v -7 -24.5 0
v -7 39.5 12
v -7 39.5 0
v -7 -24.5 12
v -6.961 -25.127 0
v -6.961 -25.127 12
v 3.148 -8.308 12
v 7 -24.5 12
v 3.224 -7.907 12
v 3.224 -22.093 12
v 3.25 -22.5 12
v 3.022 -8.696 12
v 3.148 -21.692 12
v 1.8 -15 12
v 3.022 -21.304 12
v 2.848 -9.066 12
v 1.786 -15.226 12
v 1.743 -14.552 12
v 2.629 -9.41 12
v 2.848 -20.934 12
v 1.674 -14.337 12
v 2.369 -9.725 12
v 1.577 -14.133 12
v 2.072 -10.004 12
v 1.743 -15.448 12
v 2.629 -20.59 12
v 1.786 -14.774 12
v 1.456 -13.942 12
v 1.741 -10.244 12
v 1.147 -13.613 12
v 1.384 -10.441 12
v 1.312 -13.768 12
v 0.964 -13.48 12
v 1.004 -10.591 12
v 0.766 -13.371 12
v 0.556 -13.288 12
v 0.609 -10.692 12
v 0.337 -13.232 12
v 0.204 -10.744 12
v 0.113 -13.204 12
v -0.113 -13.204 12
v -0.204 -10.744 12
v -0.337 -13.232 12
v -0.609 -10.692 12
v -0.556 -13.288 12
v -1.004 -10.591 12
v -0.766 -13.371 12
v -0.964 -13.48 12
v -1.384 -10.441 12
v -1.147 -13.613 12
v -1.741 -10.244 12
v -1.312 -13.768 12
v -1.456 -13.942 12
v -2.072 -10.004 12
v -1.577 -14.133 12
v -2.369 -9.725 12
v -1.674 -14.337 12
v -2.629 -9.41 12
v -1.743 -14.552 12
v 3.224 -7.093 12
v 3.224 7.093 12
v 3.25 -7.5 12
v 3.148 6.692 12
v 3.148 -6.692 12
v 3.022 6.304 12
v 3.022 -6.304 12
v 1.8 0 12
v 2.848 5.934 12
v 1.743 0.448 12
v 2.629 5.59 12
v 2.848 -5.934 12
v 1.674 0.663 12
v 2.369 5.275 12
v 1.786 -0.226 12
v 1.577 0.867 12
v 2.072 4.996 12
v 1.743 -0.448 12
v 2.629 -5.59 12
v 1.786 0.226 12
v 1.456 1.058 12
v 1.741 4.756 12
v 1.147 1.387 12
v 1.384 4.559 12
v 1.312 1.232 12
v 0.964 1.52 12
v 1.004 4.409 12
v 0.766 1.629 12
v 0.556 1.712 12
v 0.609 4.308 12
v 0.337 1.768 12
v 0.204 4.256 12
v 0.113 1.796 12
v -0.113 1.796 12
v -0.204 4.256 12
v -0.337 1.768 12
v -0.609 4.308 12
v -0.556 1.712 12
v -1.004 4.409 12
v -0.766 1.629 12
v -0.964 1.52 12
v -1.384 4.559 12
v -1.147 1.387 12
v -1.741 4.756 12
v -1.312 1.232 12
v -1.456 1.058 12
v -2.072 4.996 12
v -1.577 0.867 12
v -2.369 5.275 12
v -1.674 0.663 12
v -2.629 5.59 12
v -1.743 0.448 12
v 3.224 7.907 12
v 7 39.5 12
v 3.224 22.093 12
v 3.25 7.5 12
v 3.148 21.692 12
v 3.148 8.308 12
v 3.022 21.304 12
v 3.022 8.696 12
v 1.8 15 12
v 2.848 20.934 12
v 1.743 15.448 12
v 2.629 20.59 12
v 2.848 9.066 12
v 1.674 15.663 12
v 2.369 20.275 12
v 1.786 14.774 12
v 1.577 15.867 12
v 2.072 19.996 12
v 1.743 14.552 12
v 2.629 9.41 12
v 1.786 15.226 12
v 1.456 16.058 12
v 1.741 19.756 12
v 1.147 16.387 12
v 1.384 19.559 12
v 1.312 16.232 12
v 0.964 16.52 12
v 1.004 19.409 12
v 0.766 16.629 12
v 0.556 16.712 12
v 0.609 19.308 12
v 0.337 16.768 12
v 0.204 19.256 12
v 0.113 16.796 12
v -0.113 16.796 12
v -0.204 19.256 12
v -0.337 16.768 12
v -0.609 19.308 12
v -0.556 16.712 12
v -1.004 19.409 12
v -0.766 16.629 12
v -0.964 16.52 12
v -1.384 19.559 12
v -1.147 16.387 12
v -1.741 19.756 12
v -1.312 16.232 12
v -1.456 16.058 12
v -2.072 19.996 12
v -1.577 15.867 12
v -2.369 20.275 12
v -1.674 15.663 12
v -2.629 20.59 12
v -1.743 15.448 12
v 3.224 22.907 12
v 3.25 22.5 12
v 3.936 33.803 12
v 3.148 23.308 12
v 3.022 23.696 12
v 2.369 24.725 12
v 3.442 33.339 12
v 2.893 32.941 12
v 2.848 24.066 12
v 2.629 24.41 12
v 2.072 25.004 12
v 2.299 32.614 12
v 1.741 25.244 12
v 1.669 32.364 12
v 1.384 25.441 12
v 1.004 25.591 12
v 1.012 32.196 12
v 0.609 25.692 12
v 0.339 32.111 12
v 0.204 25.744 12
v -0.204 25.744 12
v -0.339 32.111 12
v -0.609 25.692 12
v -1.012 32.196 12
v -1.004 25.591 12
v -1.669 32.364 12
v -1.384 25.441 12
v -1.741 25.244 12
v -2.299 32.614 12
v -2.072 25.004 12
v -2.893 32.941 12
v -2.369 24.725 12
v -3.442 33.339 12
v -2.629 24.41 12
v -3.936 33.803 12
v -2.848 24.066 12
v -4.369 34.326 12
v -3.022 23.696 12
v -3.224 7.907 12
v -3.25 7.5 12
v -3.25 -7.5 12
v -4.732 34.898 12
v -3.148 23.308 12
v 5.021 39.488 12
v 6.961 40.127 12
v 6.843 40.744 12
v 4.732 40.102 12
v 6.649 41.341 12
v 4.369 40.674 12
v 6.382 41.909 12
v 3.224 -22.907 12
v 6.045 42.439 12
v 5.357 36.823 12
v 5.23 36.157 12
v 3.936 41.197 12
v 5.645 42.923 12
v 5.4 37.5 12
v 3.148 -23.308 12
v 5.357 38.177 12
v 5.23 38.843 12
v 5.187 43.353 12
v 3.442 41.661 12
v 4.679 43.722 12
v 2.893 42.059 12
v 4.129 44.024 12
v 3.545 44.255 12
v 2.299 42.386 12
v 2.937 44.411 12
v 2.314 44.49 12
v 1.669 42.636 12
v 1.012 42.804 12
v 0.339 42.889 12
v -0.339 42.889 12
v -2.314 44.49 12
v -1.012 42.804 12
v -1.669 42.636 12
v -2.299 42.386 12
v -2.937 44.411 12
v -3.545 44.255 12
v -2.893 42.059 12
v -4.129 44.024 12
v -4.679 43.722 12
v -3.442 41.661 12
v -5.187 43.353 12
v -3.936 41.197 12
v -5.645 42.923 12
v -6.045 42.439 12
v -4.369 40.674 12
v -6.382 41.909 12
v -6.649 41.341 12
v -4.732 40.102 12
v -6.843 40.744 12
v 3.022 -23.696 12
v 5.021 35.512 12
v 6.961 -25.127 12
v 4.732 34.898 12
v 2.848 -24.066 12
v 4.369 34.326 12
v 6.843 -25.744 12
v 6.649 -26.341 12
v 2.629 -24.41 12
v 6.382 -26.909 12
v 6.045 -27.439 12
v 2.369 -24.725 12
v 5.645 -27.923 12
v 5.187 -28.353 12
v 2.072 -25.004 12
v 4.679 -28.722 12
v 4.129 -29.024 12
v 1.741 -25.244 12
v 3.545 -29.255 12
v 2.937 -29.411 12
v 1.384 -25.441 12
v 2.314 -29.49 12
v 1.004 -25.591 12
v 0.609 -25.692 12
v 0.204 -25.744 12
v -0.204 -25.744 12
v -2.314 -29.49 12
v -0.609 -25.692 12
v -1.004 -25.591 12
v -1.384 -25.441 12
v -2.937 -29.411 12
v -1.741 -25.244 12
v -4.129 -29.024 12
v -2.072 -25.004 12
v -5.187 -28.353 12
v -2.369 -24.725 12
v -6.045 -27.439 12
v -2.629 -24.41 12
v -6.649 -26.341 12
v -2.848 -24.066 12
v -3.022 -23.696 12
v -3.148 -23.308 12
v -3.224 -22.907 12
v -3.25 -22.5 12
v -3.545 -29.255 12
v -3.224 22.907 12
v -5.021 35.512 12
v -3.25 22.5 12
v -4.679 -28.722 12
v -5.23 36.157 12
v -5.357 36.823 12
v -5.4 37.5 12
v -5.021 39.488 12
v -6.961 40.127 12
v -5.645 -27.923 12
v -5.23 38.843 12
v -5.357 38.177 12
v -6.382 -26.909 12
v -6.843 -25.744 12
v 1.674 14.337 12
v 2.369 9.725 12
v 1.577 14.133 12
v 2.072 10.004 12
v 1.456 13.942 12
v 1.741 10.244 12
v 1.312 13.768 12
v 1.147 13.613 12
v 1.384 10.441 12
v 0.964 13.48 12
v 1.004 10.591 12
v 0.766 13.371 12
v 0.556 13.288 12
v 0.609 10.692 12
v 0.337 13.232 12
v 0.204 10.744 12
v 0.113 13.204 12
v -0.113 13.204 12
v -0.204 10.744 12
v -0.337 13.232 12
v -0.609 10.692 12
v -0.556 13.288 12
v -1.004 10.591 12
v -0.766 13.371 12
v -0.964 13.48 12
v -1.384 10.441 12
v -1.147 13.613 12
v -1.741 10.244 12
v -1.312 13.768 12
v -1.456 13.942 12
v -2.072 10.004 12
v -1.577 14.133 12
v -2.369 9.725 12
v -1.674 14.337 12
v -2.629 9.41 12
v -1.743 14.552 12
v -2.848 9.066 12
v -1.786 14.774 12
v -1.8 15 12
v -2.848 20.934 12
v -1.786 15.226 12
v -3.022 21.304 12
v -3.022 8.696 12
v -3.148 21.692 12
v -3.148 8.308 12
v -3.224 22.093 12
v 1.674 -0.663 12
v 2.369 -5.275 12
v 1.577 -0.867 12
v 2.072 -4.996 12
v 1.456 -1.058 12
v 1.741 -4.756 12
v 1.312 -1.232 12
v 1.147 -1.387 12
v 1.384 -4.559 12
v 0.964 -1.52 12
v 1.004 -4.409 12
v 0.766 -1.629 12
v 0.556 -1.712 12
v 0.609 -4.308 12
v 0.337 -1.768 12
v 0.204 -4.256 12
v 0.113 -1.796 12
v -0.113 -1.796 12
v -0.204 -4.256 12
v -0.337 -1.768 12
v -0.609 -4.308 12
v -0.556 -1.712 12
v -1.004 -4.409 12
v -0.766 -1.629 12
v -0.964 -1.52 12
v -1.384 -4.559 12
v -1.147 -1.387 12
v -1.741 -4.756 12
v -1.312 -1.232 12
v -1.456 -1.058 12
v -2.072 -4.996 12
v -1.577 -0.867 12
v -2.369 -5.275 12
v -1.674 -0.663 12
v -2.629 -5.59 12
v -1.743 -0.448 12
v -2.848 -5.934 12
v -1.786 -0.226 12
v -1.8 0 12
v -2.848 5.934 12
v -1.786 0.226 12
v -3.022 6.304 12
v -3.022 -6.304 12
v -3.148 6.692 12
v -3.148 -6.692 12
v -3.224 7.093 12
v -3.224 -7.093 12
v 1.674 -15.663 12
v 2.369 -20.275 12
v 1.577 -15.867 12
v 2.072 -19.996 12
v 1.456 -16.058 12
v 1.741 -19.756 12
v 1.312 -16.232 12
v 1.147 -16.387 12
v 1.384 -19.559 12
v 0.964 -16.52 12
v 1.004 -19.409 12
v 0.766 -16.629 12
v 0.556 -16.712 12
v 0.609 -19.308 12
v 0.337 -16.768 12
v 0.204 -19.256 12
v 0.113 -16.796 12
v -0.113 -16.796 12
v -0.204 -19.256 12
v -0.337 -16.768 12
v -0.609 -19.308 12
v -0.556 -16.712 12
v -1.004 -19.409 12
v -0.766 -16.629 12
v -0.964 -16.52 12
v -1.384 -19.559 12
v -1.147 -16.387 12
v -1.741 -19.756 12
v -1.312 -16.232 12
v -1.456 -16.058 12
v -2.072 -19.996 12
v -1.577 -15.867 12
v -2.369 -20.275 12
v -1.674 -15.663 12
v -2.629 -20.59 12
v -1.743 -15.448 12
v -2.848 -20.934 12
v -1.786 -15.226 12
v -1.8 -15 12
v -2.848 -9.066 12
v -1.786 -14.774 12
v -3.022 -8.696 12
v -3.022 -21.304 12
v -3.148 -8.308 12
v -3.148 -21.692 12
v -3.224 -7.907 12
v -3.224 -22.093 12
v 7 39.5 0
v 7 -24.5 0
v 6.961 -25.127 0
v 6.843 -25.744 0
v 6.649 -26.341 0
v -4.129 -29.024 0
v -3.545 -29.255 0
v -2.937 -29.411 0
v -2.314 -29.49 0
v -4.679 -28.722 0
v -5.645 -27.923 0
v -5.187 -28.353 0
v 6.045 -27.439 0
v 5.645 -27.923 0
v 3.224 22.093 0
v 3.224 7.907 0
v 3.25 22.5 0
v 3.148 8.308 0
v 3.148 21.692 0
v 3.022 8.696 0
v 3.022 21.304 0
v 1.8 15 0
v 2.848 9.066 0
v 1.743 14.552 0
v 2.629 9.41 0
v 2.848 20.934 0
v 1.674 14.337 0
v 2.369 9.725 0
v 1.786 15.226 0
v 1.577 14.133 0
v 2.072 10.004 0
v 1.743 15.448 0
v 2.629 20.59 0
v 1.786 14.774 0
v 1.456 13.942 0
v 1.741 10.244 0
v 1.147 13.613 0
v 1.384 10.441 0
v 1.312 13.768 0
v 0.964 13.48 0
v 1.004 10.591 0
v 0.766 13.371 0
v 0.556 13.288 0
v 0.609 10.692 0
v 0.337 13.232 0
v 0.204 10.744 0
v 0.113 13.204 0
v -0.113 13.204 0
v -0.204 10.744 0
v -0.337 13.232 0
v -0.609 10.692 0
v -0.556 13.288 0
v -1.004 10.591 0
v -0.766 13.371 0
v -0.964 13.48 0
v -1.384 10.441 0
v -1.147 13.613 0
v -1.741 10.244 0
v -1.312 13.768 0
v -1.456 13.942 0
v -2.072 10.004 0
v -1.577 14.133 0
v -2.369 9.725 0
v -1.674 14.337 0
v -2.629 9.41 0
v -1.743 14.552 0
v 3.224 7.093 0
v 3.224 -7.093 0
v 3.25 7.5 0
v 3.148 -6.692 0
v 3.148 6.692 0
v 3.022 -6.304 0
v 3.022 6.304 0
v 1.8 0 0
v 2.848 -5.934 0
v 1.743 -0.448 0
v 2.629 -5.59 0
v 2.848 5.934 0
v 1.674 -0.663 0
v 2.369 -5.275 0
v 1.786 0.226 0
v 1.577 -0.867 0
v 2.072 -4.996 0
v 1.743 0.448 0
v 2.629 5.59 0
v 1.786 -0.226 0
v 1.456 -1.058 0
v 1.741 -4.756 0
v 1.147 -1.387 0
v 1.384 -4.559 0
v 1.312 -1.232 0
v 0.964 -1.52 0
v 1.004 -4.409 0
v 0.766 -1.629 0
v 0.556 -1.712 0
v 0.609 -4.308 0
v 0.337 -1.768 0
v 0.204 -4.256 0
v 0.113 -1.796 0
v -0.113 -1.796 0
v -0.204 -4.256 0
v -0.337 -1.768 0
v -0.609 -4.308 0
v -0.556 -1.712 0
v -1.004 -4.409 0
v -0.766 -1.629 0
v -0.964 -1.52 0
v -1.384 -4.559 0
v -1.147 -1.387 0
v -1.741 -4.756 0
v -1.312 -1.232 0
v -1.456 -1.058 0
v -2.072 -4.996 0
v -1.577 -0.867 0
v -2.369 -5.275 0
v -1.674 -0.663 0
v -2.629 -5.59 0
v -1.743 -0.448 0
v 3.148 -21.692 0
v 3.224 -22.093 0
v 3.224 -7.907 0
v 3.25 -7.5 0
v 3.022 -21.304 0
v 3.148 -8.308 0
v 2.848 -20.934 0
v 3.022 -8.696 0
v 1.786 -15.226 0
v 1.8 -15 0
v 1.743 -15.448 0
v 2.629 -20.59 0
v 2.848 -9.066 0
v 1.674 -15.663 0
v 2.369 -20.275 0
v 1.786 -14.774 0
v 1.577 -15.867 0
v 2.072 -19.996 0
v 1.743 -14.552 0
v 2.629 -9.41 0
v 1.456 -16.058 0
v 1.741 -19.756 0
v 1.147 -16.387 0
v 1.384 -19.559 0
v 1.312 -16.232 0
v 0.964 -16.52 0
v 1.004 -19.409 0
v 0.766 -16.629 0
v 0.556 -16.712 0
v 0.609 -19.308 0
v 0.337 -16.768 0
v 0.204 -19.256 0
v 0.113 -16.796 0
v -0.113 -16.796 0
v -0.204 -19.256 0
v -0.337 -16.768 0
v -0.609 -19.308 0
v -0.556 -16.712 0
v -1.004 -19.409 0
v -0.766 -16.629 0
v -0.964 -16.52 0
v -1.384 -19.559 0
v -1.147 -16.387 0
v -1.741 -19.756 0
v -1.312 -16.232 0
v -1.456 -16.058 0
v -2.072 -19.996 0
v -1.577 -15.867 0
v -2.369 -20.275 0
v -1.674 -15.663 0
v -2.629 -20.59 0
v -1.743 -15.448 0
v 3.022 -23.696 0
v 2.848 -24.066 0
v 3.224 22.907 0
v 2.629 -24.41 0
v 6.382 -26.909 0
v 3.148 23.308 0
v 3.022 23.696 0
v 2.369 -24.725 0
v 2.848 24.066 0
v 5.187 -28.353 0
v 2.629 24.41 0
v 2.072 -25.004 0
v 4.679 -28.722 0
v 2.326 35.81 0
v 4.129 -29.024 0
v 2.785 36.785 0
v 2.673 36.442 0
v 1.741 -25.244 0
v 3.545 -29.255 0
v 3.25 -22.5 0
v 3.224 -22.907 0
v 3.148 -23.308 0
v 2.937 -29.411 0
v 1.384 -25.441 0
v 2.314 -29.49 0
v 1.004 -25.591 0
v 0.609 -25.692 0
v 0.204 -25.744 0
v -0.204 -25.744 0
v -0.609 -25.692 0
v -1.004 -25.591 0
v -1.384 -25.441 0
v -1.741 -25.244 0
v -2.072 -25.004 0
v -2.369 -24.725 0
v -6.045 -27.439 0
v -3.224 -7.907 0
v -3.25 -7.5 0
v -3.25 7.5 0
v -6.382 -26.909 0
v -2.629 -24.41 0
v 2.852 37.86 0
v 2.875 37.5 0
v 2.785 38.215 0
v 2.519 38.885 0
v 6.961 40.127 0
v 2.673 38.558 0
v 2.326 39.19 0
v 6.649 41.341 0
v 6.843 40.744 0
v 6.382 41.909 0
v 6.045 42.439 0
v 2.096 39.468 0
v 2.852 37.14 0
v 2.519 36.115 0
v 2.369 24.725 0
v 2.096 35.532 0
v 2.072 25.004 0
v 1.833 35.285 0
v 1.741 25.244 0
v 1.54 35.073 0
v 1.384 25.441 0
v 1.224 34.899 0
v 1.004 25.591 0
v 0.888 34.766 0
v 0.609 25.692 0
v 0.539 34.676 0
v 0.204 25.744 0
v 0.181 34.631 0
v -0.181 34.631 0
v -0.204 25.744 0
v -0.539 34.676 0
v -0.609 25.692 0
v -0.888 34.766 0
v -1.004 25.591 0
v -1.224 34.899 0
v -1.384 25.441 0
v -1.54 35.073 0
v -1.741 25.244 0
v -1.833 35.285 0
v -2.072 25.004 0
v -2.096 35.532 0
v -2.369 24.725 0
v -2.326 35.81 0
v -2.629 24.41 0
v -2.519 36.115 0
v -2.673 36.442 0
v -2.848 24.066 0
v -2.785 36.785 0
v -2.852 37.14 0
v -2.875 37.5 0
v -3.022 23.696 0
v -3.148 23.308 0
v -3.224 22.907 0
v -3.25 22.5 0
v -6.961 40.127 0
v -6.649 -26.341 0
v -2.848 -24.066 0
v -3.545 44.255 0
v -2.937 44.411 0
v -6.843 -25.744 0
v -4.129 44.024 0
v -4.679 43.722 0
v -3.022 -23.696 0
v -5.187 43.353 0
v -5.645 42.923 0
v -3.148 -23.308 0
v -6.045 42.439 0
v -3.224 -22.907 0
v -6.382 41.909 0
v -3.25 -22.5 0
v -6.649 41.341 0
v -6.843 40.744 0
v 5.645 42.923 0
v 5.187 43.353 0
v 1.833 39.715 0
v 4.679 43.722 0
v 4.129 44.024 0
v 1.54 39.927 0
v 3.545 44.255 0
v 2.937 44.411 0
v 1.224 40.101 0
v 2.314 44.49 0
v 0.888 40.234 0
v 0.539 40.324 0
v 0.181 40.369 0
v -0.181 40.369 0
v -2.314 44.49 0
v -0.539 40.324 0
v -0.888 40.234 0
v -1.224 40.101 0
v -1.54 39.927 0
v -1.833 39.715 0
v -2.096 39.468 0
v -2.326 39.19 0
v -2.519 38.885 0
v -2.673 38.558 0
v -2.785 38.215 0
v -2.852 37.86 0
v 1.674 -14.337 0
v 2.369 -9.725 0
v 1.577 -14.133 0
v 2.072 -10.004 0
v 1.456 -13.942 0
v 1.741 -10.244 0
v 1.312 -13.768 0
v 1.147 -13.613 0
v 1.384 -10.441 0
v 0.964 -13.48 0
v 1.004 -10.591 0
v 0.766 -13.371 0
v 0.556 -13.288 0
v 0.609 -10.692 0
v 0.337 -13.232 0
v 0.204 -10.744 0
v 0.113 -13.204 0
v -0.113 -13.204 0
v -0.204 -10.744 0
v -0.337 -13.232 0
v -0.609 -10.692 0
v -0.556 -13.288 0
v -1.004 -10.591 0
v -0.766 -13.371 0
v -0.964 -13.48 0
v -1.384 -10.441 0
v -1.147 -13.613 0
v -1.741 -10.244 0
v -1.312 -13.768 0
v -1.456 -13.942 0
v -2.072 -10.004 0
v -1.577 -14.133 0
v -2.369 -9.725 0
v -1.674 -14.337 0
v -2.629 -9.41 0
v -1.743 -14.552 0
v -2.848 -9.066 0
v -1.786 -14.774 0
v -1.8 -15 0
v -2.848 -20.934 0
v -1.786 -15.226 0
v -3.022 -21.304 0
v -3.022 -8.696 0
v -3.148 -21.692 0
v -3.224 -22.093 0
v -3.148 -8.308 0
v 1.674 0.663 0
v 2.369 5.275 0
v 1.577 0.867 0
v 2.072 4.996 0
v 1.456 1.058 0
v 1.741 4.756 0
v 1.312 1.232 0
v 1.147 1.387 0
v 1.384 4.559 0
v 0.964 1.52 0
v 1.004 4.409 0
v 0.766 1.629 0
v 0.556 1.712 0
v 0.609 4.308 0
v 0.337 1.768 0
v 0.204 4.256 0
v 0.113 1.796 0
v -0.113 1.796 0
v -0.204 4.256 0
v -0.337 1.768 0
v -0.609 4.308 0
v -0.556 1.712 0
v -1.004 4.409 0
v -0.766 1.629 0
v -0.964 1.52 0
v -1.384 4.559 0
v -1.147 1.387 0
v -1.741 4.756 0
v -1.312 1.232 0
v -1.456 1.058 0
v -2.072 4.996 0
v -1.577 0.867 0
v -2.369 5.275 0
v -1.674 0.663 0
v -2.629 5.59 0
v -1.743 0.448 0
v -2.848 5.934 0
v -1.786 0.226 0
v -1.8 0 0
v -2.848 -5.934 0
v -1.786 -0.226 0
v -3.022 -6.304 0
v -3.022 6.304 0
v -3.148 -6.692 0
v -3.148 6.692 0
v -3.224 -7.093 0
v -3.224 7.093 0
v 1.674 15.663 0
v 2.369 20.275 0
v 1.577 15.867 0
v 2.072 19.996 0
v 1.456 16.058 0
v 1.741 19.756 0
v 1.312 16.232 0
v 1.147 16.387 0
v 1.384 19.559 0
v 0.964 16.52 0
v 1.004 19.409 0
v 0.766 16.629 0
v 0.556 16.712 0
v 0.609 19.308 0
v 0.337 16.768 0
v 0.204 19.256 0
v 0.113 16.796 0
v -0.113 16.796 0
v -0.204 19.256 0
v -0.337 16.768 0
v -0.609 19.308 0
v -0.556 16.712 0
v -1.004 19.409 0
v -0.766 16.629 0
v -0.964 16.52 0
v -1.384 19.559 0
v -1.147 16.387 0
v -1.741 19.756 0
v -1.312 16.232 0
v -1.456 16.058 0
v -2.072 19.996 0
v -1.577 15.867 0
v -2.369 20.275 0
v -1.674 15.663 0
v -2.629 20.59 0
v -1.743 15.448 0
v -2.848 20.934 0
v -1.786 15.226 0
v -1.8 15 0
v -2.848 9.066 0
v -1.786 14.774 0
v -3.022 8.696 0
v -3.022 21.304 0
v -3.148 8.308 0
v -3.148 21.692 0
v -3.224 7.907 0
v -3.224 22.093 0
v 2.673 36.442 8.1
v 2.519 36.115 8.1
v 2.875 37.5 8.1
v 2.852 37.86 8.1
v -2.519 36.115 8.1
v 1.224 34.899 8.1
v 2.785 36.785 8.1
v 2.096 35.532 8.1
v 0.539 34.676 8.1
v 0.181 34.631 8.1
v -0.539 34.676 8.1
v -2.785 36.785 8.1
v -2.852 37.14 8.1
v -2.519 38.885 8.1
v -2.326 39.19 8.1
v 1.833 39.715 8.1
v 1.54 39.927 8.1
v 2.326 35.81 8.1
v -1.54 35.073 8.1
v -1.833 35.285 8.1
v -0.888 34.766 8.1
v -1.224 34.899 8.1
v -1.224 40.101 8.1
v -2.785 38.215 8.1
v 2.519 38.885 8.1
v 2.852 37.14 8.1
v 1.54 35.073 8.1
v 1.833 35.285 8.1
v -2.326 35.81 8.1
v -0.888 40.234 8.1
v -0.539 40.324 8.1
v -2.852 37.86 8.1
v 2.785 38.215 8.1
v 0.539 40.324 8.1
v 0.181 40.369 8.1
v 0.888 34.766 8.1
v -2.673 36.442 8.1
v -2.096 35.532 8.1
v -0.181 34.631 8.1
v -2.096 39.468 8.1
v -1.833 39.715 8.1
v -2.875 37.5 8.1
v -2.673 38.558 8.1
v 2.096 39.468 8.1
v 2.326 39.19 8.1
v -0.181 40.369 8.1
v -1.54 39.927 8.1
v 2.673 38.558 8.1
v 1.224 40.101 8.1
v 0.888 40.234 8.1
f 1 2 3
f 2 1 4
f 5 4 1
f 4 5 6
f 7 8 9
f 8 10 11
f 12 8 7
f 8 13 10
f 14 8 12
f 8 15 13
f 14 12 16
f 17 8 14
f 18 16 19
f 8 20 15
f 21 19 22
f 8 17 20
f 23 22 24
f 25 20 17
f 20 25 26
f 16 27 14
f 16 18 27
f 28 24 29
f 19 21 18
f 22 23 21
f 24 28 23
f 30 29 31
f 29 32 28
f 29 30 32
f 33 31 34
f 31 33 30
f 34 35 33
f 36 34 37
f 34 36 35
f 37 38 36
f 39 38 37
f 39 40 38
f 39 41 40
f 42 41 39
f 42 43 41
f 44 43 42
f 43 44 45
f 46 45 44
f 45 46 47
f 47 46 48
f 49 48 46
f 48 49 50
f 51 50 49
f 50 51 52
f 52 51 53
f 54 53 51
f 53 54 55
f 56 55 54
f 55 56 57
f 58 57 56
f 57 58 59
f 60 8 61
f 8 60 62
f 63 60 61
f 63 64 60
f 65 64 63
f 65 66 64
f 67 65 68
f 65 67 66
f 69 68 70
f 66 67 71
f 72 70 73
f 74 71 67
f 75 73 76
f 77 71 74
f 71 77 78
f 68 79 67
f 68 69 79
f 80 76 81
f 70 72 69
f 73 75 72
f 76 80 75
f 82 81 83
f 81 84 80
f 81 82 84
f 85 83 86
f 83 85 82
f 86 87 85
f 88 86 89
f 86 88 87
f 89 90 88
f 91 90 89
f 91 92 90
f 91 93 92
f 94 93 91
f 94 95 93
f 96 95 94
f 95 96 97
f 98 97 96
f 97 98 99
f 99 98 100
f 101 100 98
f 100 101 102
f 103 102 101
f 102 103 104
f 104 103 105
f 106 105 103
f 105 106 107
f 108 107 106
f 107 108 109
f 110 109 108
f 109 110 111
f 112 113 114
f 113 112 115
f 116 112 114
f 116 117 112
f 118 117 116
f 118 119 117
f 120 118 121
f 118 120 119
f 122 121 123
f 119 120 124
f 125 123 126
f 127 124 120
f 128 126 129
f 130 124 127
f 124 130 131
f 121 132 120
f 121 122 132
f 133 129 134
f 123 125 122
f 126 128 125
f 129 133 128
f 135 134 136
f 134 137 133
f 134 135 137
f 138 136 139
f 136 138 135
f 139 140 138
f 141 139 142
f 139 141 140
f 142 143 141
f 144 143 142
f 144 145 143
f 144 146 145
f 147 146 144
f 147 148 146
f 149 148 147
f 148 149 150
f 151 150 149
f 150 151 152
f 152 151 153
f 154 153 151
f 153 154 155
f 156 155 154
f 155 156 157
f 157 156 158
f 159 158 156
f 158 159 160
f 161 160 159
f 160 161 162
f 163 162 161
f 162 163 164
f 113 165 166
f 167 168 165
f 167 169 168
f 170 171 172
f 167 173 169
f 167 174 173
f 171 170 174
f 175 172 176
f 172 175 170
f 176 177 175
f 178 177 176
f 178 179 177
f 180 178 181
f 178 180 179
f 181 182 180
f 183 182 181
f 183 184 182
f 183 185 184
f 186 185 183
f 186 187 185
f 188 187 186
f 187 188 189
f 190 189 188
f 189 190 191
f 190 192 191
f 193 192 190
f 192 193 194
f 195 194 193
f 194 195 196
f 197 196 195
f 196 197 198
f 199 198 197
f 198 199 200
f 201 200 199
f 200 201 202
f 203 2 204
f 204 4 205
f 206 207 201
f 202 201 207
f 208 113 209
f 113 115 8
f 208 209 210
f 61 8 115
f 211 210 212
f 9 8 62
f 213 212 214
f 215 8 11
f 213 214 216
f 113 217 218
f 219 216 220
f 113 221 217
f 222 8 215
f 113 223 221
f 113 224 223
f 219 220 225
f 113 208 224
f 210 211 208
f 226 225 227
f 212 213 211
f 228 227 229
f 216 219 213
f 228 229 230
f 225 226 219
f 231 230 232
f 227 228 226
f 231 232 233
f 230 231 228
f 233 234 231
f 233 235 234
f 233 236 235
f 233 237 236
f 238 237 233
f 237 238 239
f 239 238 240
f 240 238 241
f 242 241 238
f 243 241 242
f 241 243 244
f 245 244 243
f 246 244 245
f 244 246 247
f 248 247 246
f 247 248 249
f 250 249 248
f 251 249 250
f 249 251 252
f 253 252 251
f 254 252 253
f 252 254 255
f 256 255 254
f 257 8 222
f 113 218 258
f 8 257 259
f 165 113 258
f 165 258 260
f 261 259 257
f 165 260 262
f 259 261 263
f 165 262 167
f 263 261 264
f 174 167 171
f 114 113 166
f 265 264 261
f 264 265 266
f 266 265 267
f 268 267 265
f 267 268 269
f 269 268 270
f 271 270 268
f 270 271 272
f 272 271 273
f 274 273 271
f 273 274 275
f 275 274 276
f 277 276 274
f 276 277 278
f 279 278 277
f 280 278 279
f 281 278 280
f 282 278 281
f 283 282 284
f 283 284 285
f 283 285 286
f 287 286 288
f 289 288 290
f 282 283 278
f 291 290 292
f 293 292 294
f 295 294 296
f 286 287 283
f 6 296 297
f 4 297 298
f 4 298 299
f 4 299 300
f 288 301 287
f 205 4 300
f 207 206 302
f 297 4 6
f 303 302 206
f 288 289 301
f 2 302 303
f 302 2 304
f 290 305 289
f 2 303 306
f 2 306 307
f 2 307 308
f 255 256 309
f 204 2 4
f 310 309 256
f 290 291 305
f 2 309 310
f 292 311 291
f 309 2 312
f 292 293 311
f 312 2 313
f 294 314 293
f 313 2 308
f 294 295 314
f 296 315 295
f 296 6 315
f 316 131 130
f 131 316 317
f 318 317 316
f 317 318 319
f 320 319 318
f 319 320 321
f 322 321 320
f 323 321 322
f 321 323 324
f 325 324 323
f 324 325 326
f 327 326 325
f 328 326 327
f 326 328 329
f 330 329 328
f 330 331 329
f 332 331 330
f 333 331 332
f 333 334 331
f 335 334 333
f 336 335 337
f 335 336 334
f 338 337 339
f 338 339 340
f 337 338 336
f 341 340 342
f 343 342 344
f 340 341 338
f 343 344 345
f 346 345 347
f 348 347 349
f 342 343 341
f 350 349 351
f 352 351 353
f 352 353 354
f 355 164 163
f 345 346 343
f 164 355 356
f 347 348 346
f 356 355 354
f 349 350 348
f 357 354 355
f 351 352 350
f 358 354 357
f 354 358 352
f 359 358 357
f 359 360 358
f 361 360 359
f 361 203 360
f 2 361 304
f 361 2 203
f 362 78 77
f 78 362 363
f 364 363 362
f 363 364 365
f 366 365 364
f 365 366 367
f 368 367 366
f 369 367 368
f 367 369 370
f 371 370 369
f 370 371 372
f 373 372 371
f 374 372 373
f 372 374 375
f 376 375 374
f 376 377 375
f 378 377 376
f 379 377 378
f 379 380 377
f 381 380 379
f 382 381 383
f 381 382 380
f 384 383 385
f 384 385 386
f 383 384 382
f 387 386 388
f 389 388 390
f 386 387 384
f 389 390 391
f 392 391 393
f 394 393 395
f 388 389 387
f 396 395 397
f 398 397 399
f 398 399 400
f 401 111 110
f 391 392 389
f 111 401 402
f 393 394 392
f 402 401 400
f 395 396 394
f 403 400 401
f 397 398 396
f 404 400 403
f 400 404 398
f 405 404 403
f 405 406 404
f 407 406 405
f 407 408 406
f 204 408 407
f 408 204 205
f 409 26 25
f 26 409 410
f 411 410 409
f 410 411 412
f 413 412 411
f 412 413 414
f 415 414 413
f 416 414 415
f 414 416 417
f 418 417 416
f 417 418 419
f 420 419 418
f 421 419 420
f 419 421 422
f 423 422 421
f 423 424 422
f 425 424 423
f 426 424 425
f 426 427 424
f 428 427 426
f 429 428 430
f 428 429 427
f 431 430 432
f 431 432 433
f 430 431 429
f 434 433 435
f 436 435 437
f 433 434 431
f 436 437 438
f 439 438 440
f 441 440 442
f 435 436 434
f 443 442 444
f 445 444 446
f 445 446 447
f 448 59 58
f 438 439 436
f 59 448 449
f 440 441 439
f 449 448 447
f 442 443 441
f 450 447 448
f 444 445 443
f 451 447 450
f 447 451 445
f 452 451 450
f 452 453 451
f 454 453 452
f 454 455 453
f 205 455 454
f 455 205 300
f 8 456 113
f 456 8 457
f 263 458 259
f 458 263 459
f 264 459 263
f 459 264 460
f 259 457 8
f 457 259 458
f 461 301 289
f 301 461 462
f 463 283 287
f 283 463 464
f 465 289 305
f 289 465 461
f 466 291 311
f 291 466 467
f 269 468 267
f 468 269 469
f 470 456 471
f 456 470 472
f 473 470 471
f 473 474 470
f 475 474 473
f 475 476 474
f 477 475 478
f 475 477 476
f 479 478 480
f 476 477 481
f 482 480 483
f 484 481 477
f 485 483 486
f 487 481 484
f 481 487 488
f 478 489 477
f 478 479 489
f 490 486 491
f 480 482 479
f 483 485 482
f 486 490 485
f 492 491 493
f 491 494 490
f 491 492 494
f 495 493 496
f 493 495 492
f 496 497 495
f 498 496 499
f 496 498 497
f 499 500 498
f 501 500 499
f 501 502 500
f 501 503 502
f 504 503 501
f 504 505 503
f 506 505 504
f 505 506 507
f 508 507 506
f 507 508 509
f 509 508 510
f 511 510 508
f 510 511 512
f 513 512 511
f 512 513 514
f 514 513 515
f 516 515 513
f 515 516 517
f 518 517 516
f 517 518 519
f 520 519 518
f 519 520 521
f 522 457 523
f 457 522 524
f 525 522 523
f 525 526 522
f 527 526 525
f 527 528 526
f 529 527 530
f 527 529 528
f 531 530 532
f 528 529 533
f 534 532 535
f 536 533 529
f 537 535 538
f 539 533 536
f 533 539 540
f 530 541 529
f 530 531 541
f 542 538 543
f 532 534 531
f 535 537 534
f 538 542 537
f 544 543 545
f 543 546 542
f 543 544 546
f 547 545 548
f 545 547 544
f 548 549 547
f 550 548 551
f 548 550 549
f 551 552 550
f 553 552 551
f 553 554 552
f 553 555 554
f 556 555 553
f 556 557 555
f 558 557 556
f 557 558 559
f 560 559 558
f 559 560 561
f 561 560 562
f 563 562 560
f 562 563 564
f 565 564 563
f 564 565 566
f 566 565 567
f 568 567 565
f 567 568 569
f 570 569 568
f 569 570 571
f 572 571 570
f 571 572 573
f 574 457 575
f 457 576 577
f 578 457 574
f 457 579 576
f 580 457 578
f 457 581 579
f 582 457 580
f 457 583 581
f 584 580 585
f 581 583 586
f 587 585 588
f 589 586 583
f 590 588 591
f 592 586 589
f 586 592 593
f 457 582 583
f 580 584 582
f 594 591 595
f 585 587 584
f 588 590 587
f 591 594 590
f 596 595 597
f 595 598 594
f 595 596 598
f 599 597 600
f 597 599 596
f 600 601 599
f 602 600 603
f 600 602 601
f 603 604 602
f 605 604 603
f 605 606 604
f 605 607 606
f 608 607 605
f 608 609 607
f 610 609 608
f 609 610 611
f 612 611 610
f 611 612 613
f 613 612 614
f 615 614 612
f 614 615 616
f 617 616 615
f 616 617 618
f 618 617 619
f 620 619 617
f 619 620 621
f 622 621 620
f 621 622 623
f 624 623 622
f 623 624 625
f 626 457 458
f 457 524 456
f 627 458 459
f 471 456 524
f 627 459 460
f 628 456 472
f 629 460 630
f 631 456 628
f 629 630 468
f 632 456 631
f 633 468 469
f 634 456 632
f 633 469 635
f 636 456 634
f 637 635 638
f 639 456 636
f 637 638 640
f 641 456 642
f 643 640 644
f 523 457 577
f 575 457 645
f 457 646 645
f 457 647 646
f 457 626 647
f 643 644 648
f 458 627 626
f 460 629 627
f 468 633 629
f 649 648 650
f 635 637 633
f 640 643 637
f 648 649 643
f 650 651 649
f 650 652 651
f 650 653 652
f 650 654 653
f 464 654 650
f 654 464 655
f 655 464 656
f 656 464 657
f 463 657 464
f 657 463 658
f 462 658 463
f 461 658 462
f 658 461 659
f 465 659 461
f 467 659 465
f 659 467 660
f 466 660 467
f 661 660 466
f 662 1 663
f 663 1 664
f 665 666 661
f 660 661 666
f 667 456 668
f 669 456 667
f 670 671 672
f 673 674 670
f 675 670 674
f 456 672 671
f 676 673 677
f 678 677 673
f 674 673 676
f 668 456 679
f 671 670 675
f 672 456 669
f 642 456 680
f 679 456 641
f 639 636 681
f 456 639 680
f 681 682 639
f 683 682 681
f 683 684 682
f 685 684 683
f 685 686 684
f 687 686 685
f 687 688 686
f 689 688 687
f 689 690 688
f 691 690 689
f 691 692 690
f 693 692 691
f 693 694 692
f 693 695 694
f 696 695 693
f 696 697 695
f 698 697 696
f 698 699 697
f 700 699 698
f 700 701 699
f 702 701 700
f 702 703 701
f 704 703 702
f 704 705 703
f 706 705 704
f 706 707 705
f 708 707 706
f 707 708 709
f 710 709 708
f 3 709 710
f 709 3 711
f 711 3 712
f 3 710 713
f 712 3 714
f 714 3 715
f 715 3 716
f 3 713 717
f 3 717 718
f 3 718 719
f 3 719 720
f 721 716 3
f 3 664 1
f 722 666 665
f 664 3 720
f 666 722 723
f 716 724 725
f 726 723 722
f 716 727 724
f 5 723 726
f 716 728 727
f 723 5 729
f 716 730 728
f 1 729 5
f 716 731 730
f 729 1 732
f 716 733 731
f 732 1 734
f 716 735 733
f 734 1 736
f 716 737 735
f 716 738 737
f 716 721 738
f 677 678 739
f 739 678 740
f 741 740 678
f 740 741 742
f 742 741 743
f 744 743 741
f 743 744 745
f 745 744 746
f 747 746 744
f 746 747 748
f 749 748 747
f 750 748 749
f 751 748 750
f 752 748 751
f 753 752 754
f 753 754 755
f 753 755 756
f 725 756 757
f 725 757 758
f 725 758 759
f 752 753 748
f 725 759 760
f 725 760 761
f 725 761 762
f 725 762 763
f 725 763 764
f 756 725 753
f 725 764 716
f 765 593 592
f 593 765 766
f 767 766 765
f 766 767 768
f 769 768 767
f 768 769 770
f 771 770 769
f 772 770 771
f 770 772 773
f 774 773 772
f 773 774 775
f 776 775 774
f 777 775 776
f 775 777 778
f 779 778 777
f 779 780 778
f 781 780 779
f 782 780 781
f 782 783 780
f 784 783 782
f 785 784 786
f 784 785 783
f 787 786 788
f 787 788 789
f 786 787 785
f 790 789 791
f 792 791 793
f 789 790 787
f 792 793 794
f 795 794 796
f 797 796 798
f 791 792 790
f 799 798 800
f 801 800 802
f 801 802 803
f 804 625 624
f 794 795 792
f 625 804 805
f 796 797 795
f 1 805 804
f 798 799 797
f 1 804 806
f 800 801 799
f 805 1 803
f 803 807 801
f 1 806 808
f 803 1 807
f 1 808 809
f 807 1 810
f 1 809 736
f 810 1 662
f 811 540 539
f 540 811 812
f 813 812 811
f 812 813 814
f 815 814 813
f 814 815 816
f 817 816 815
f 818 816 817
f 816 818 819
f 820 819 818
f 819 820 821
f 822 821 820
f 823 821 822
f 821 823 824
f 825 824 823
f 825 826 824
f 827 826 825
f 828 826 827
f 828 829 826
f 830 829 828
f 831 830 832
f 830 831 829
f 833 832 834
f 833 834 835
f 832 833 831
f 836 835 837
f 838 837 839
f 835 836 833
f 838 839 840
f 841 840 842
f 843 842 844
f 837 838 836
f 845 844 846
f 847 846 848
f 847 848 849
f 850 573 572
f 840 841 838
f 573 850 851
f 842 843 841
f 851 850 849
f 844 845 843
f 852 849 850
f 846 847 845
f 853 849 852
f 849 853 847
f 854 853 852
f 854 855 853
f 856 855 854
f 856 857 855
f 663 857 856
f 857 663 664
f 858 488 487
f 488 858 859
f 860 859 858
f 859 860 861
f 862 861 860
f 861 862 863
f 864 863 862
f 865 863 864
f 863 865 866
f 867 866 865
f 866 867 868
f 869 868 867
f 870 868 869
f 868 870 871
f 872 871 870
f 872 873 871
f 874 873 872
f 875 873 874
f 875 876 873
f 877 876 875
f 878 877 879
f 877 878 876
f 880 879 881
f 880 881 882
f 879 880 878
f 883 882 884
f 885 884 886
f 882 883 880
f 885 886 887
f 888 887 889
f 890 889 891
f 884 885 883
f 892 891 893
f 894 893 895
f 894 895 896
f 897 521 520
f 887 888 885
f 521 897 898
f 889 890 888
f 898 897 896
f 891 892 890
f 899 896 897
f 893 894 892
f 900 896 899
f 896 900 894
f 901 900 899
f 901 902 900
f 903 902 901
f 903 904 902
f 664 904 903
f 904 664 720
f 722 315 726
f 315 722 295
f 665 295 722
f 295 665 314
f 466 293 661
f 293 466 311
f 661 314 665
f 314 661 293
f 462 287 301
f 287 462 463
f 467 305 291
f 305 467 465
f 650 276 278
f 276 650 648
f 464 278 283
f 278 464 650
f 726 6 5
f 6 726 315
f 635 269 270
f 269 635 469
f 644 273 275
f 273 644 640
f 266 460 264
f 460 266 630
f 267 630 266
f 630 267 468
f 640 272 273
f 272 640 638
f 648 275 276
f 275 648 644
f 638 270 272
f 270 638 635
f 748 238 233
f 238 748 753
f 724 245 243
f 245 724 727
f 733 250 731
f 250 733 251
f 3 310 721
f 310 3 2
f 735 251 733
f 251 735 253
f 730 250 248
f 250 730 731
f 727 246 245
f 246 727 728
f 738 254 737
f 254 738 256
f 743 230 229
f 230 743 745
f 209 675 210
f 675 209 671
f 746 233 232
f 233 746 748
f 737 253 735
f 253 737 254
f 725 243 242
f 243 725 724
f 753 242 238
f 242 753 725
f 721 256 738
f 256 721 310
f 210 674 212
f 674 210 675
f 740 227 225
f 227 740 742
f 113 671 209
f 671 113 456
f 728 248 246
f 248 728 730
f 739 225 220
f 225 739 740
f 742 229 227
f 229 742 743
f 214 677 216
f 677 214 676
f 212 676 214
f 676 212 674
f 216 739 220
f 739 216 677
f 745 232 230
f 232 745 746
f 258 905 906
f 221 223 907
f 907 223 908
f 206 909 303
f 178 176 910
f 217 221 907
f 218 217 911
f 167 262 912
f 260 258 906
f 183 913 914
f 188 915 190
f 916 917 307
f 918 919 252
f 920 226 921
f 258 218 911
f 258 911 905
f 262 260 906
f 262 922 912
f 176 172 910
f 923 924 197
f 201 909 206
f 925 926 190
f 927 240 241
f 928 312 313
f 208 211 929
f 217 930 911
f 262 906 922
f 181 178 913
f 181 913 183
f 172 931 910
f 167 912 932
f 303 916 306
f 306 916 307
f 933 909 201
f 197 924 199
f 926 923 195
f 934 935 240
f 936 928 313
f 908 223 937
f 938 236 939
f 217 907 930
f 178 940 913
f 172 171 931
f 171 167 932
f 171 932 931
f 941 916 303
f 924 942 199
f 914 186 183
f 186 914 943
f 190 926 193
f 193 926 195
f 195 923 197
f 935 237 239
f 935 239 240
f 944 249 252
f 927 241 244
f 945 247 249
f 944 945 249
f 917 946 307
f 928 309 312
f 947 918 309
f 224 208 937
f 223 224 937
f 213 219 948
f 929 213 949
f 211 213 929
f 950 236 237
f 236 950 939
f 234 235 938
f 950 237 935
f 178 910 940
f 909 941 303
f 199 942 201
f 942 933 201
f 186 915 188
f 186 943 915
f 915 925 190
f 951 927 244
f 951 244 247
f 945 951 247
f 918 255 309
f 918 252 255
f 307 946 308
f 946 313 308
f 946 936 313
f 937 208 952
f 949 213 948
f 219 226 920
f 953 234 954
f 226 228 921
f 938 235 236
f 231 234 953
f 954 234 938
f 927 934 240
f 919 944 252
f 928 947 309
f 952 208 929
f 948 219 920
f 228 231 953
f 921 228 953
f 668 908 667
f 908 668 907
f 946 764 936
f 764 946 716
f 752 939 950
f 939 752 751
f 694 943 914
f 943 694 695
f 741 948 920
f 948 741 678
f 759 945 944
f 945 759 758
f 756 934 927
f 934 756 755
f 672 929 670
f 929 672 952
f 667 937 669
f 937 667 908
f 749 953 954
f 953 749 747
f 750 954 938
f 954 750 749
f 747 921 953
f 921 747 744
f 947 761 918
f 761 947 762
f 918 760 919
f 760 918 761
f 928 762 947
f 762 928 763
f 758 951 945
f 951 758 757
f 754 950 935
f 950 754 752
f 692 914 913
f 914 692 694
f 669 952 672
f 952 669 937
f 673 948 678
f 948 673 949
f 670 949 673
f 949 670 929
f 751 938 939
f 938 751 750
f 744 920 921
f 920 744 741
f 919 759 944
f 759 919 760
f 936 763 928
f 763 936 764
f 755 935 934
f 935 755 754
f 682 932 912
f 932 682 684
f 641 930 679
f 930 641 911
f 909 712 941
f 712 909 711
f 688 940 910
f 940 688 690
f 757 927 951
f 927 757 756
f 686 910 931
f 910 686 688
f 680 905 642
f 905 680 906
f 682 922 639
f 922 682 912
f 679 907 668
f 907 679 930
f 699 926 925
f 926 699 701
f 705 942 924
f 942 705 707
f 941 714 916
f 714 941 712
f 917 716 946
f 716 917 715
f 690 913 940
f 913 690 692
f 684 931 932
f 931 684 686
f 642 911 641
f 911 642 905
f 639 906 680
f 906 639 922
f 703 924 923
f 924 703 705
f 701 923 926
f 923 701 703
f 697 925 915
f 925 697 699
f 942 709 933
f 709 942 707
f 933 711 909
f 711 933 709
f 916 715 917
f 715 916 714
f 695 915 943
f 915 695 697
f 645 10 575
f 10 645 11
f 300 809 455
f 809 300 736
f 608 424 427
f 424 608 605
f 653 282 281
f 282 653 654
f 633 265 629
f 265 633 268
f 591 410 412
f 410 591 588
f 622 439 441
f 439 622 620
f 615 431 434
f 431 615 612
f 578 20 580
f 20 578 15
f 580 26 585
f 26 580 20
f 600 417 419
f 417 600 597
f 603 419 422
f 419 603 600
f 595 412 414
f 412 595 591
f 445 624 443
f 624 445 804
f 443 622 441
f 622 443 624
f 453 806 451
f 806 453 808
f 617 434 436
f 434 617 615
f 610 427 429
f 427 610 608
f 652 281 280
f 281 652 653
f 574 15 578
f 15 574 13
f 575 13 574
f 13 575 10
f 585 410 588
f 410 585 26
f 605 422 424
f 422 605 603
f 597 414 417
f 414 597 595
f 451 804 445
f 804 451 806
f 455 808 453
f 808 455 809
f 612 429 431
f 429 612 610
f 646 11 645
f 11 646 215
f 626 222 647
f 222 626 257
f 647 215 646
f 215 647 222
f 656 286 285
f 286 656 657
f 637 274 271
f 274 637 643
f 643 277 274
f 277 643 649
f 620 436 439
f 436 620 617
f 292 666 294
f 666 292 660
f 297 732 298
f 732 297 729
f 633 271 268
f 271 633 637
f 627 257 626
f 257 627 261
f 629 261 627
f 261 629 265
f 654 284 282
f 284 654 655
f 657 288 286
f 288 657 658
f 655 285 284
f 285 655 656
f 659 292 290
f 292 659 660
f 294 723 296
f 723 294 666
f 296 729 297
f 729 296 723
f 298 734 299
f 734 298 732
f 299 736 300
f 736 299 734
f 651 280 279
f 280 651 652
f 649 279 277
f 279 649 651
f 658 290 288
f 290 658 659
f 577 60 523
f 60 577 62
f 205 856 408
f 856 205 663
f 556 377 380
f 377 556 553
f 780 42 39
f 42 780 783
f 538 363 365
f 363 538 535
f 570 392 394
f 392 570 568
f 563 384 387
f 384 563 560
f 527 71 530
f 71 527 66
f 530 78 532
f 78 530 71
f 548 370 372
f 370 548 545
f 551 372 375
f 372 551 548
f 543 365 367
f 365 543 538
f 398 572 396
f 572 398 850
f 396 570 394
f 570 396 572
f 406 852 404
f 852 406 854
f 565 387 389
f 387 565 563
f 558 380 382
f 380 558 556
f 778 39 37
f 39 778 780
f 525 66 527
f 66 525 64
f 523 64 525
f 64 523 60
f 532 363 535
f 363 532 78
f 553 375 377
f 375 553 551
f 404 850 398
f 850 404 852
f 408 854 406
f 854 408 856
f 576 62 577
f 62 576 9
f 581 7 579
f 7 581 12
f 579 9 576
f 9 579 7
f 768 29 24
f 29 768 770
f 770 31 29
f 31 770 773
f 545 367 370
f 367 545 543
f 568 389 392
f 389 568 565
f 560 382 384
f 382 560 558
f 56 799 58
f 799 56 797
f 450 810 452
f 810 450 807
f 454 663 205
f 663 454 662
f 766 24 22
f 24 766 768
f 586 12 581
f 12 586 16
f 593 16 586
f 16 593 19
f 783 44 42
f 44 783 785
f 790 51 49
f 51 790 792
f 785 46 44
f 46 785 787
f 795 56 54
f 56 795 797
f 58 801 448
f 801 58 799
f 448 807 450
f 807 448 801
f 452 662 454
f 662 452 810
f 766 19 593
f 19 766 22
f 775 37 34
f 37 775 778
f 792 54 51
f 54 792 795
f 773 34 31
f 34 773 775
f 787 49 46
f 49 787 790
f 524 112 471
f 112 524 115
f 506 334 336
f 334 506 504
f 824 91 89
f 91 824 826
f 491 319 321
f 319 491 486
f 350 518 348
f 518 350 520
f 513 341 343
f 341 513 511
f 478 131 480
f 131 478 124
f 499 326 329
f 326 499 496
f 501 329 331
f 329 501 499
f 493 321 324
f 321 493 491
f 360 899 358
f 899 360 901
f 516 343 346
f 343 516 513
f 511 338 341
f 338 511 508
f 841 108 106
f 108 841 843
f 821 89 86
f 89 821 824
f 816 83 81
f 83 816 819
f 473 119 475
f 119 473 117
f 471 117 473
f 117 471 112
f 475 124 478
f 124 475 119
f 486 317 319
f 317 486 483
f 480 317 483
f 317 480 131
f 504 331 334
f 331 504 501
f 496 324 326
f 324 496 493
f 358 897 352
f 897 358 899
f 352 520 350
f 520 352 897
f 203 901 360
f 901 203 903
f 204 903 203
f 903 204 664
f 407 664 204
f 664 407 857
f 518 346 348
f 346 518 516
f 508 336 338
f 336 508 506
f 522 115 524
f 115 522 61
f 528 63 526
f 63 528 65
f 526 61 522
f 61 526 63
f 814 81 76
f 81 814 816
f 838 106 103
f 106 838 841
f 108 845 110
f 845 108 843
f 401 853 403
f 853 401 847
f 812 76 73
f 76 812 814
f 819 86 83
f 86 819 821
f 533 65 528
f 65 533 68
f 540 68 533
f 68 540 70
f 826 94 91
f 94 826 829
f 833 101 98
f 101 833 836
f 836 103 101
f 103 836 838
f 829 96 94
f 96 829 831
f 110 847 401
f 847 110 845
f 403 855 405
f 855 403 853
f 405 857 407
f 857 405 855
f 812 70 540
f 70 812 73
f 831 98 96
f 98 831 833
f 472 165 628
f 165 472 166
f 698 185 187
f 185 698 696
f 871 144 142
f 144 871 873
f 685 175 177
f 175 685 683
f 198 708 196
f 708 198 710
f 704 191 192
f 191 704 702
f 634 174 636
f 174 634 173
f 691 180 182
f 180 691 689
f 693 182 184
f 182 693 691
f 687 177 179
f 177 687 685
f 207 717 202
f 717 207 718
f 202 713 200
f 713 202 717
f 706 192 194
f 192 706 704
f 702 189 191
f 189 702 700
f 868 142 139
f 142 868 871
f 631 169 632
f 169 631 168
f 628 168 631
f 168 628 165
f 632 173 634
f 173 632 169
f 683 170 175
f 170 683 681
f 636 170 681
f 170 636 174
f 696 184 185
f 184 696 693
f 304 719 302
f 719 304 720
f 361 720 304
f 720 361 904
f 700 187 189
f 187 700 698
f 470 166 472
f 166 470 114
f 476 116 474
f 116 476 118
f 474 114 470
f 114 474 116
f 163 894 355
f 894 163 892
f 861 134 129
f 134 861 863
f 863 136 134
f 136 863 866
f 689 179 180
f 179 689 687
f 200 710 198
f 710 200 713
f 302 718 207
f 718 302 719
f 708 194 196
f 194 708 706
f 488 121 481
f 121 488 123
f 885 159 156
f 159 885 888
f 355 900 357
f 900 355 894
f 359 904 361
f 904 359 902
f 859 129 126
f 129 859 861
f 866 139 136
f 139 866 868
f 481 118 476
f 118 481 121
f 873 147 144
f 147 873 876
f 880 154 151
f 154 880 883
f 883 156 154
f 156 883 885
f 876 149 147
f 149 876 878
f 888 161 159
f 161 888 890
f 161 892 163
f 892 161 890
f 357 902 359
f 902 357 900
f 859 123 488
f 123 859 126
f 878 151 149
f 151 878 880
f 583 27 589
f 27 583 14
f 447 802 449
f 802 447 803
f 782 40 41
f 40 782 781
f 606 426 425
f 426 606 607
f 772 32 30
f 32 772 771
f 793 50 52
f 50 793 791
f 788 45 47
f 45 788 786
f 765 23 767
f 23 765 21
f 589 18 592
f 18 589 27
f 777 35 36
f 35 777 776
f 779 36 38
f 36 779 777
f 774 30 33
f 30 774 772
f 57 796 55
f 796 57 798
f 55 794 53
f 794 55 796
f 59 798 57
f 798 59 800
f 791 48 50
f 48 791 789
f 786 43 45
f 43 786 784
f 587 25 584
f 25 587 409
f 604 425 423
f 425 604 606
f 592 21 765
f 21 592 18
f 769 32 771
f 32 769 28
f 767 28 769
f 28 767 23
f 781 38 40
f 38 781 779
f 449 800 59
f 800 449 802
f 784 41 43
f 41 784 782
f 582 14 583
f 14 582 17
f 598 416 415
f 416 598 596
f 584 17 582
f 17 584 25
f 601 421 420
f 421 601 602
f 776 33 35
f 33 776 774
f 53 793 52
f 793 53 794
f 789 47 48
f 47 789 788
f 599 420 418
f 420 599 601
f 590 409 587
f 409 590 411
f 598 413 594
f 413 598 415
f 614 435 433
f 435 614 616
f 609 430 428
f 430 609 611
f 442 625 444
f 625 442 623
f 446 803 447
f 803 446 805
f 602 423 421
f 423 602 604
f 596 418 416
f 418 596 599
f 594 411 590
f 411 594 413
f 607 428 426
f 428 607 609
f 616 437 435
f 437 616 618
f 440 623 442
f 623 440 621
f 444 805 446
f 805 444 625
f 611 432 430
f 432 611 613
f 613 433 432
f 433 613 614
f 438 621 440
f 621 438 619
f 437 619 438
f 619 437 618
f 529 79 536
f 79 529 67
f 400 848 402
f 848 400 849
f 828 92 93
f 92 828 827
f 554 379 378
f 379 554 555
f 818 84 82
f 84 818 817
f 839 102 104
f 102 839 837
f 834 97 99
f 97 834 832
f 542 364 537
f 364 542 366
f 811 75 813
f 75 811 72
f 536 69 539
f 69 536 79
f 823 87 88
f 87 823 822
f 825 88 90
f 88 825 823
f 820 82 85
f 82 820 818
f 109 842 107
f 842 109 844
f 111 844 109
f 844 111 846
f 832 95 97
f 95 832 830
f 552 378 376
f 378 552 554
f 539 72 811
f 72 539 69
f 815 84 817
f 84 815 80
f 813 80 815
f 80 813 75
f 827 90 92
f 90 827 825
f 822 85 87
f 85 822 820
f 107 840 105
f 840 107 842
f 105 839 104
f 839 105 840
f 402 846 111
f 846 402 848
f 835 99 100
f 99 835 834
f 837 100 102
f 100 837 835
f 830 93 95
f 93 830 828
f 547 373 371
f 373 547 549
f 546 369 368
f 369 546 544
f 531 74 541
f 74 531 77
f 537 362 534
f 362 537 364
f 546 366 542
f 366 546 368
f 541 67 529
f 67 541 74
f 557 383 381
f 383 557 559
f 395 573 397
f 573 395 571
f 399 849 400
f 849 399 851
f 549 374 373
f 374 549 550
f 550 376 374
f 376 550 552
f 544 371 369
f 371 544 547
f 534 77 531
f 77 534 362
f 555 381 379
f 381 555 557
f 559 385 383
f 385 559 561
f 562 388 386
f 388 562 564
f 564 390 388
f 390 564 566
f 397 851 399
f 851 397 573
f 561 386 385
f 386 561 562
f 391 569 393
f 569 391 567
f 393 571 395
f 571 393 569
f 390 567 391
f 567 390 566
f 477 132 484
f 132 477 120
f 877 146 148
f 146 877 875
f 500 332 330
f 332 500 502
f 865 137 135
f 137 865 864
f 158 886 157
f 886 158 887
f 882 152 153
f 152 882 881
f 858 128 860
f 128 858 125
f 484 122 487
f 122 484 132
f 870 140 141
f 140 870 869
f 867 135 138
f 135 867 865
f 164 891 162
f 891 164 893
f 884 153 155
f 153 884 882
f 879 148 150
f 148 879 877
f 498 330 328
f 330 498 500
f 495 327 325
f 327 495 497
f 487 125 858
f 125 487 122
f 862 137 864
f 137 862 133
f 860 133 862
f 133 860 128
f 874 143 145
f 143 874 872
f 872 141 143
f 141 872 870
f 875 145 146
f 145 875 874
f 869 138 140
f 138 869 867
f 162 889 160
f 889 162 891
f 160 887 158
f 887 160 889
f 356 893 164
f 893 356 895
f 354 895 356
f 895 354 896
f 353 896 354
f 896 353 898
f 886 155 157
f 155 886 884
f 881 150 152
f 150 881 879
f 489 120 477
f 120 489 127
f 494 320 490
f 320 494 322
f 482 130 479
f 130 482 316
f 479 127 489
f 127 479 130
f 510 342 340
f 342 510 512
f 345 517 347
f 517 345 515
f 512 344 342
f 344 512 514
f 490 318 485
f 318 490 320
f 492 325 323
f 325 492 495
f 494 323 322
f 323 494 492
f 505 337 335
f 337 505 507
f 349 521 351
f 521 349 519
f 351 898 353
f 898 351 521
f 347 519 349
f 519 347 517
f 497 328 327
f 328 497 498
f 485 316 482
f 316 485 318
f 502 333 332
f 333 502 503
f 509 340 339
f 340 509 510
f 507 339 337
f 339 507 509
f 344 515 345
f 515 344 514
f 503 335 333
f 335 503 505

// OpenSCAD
$fn = 50;


difference() {
	union() {
		hull() {
			translate(v = [-2.0000000000, 24.5000000000, 0]) {
				cylinder(h = 12, r = 5);
			}
			translate(v = [2.0000000000, 24.5000000000, 0]) {
				cylinder(h = 12, r = 5);
			}
			translate(v = [-2.0000000000, -24.5000000000, 0]) {
				cylinder(h = 12, r = 5);
			}
			translate(v = [2.0000000000, -24.5000000000, 0]) {
				cylinder(h = 12, r = 5);
			}
		}
		translate(v = [0.0000000000, 30.0000000000, 0]) {
			hull() {
				translate(v = [-2.0000000000, 9.5000000000, 0]) {
					cylinder(h = 12, r = 5);
				}
				translate(v = [2.0000000000, 9.5000000000, 0]) {
					cylinder(h = 12, r = 5);
				}
				translate(v = [-2.0000000000, -9.5000000000, 0]) {
					cylinder(h = 12, r = 5);
				}
				translate(v = [2.0000000000, -9.5000000000, 0]) {
					cylinder(h = 12, r = 5);
				}
			}
		}
		translate(v = [0.0000000000, 30.0000000000, 0]) {
			hull() {
				translate(v = [-2.0000000000, 9.5000000000, 0]) {
					cylinder(h = 12, r = 5);
				}
				translate(v = [2.0000000000, 9.5000000000, 0]) {
					cylinder(h = 12, r = 5);
				}
				translate(v = [-2.0000000000, -9.5000000000, 0]) {
					cylinder(h = 12, r = 5);
				}
				translate(v = [2.0000000000, -9.5000000000, 0]) {
					cylinder(h = 12, r = 5);
				}
			}
		}
	}
	union() {
		translate(v = [0.0000000000, 37.5000000000, 12]) {
			rotate(a = [0, 0, 0]) {
				difference() {
					union() {
						#translate(v = [0, 0, -12.0000000000]) {
							cylinder(h = 12, r = 2.6000000000);
						}
						#translate(v = [0, 0, -3.9000000000]) {
							cylinder(h = 3.9000000000, r1 = 2.8750000000, r2 = 5.4000000000);
						}
						#translate(v = [0, 0, -12.0000000000]) {
							cylinder(h = 12, r = 2.8750000000);
						}
						#translate(v = [0, 0, -12.0000000000]) {
							cylinder(h = 12, r = 2.6000000000);
						}
					}
					union();
				}
			}
		}
		translate(v = [0.0000000000, 37.5000000000, 12]) {
			rotate(a = [0, 0, 0]) {
				difference() {
					union() {
						#translate(v = [0, 0, -12.0000000000]) {
							cylinder(h = 12, r = 2.6000000000);
						}
						#translate(v = [0, 0, -3.9000000000]) {
							cylinder(h = 3.9000000000, r1 = 2.8750000000, r2 = 5.4000000000);
						}
						#translate(v = [0, 0, -12.0000000000]) {
							cylinder(h = 12, r = 2.8750000000);
						}
						#translate(v = [0, 0, -12.0000000000]) {
							cylinder(h = 12, r = 2.6000000000);
						}
					}
					union();
				}
			}
		}
		translate(v = [0.0000000000, -22.5000000000, 0]) {
			translate(v = [0, 0, -100]) {
				cylinder(h = 200, r = 3.2500000000);
			}
		}
		translate(v = [0.0000000000, -7.5000000000, 0]) {
			translate(v = [0, 0, -100]) {
				cylinder(h = 200, r = 3.2500000000);
			}
		}
		translate(v = [0.0000000000, 7.5000000000, 0]) {
			translate(v = [0, 0, -100]) {
				cylinder(h = 200, r = 3.2500000000);
			}
		}
		translate(v = [0.0000000000, 22.5000000000, 0]) {
			translate(v = [0, 0, -100]) {
				cylinder(h = 200, r = 3.2500000000);
			}
		}
		translate(v = [0.0000000000, -22.5000000000, 0]) {
			translate(v = [0, 0, -100]) {
				cylinder(h = 200, r = 1.8000000000);
			}
		}
		translate(v = [0.0000000000, -15.0000000000, 0]) {
			translate(v = [0, 0, -100]) {
				cylinder(h = 200, r = 1.8000000000);
			}
		}
		translate(v = [0.0000000000, -7.5000000000, 0]) {
			translate(v = [0, 0, -100]) {
				cylinder(h = 200, r = 1.8000000000);
			}
		}
		translate(v = [0, 0, -100]) {
			cylinder(h = 200, r = 1.8000000000);
		}
		translate(v = [0.0000000000, 7.5000000000, 0]) {
			translate(v = [0, 0, -100]) {
				cylinder(h = 200, r = 1.8000000000);
			}
		}
		translate(v = [0.0000000000, 15.0000000000, 0]) {
			translate(v = [0, 0, -100]) {
				cylinder(h = 200, r = 1.8000000000);
			}
		}
		translate(v = [0.0000000000, 22.5000000000, 0]) {
			translate(v = [0, 0, -100]) {
				cylinder(h = 200, r = 1.8000000000);
			}
		}
	}
}
